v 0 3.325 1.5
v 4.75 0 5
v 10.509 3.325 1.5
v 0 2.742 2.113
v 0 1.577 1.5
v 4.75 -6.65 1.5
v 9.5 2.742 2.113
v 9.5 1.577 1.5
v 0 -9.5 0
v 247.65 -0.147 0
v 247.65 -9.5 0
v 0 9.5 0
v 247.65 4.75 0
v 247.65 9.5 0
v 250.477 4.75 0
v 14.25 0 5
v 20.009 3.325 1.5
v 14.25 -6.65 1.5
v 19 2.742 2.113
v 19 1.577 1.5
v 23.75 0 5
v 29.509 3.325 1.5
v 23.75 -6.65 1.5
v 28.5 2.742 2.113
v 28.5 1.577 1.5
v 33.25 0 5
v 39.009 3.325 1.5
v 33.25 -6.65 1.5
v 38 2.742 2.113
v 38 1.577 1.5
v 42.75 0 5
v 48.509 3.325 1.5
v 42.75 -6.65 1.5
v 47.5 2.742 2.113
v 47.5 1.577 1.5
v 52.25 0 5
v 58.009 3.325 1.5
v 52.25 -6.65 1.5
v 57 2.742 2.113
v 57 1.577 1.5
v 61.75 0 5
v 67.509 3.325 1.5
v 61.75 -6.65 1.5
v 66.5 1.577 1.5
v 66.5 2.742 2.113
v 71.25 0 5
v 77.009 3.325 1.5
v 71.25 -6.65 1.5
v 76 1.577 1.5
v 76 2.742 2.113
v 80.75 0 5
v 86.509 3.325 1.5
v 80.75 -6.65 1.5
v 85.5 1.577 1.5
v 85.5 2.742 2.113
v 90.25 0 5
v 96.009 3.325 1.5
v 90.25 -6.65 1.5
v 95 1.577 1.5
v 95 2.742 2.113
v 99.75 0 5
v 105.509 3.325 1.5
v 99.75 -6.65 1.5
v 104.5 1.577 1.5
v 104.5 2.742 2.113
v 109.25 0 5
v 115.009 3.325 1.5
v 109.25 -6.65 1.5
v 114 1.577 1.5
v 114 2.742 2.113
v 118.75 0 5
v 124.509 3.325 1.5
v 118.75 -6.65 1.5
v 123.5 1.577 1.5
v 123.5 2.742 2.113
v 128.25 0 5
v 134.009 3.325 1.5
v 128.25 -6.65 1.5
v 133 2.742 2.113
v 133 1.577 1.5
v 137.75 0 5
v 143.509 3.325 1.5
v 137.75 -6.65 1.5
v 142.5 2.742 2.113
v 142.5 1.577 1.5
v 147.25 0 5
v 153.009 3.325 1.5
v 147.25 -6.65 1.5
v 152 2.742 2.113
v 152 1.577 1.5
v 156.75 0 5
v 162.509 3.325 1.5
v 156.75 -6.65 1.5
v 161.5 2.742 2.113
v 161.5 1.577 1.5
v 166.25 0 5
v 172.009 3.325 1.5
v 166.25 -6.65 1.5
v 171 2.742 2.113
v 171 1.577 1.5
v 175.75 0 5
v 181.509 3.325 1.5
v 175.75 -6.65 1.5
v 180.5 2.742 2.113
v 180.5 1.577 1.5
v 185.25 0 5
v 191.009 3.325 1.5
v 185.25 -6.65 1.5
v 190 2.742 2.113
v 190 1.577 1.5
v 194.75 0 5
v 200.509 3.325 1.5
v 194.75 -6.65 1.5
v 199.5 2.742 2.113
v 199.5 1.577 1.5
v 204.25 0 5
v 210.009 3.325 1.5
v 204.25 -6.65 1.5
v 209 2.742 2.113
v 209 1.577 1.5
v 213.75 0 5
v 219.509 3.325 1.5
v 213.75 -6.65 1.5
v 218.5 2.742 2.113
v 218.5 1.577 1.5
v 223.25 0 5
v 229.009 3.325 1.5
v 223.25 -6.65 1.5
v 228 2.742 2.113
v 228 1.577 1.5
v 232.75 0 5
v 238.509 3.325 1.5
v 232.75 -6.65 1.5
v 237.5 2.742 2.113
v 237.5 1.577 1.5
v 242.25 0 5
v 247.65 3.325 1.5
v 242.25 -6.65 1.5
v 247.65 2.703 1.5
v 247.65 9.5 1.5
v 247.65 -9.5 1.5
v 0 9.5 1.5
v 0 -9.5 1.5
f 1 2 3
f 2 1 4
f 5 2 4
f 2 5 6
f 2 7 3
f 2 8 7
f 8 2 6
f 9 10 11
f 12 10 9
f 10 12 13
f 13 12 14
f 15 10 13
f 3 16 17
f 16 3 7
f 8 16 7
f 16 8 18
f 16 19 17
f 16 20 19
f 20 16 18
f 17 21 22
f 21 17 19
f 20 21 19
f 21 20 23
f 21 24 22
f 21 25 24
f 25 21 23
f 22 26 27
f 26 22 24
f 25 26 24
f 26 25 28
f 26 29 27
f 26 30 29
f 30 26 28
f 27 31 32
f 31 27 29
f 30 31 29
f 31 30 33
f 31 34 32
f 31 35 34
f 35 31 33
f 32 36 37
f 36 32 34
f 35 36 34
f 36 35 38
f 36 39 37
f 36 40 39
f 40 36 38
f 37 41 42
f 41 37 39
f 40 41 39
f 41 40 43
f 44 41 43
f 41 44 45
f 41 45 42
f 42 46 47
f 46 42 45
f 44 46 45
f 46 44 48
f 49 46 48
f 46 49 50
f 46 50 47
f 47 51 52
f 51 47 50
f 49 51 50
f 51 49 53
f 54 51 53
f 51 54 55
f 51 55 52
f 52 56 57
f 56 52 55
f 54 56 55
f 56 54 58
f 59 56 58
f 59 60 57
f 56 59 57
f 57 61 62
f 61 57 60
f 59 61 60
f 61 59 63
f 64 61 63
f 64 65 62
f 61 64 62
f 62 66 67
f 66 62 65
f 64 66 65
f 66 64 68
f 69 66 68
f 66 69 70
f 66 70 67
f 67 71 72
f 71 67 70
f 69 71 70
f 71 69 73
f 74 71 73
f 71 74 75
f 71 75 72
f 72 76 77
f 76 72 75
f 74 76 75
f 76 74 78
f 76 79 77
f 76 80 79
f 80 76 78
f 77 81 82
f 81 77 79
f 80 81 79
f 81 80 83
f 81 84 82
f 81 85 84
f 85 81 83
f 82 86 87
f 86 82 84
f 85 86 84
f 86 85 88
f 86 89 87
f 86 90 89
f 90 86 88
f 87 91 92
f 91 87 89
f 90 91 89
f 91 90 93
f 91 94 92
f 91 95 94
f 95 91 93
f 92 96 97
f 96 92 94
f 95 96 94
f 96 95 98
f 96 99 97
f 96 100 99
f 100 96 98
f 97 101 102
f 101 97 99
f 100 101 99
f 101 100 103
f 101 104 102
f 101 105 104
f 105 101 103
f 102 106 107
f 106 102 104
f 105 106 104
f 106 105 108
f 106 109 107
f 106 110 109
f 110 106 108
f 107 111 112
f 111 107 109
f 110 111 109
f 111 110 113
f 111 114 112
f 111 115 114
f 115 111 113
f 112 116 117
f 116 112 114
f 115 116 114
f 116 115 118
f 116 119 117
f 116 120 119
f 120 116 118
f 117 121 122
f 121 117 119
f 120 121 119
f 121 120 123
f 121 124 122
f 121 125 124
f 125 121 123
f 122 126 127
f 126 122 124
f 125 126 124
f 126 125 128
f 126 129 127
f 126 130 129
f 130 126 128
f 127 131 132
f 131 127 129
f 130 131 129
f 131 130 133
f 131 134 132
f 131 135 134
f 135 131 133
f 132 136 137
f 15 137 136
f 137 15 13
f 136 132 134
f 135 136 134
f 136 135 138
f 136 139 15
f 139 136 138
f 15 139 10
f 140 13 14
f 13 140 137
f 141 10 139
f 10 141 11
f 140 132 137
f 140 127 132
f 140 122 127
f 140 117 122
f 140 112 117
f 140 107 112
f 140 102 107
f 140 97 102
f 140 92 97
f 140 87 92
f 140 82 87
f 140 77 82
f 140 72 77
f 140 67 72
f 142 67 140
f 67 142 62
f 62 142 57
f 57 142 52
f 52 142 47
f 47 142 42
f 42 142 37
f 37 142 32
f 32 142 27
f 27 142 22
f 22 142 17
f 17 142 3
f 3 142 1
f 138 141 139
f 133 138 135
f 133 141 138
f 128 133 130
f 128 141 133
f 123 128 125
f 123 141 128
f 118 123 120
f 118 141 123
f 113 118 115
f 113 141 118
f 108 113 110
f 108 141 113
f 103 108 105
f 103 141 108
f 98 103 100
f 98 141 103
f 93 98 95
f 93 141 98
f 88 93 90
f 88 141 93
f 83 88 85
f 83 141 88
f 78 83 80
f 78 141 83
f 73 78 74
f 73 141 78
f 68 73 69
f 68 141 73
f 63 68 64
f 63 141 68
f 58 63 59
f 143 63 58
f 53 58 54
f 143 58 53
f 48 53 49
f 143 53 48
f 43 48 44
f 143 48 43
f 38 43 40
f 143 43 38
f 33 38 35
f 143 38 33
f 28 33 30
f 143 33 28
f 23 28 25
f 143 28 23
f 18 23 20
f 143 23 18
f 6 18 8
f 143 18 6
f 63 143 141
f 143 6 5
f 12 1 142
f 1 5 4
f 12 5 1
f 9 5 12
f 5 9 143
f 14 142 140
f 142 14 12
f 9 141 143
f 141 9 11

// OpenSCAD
$r = 19/2;
$r2 = 11 / 2;
$d = 1.5;
$fn = 3;
$links = 25;

difference() {
    union() {
for (i = [0:$links]) {
    
     translate([i * $r+$r/2, 0, 2.5]) {
        rotate([0, 0, 30]) {
            cylinder(5, $r, 0, true);
        }
     }
}
translate([0, -$r, 0]) {
     cube([247.65, $r*2 , $d], false);
}
}
translate([-10, 0, 0]) {
    cube([20, 20, 20], true);
}
translate([($links) * $r +11.2, 0, 0]) {
    //cube([20, 20, 20], true);
}
}
